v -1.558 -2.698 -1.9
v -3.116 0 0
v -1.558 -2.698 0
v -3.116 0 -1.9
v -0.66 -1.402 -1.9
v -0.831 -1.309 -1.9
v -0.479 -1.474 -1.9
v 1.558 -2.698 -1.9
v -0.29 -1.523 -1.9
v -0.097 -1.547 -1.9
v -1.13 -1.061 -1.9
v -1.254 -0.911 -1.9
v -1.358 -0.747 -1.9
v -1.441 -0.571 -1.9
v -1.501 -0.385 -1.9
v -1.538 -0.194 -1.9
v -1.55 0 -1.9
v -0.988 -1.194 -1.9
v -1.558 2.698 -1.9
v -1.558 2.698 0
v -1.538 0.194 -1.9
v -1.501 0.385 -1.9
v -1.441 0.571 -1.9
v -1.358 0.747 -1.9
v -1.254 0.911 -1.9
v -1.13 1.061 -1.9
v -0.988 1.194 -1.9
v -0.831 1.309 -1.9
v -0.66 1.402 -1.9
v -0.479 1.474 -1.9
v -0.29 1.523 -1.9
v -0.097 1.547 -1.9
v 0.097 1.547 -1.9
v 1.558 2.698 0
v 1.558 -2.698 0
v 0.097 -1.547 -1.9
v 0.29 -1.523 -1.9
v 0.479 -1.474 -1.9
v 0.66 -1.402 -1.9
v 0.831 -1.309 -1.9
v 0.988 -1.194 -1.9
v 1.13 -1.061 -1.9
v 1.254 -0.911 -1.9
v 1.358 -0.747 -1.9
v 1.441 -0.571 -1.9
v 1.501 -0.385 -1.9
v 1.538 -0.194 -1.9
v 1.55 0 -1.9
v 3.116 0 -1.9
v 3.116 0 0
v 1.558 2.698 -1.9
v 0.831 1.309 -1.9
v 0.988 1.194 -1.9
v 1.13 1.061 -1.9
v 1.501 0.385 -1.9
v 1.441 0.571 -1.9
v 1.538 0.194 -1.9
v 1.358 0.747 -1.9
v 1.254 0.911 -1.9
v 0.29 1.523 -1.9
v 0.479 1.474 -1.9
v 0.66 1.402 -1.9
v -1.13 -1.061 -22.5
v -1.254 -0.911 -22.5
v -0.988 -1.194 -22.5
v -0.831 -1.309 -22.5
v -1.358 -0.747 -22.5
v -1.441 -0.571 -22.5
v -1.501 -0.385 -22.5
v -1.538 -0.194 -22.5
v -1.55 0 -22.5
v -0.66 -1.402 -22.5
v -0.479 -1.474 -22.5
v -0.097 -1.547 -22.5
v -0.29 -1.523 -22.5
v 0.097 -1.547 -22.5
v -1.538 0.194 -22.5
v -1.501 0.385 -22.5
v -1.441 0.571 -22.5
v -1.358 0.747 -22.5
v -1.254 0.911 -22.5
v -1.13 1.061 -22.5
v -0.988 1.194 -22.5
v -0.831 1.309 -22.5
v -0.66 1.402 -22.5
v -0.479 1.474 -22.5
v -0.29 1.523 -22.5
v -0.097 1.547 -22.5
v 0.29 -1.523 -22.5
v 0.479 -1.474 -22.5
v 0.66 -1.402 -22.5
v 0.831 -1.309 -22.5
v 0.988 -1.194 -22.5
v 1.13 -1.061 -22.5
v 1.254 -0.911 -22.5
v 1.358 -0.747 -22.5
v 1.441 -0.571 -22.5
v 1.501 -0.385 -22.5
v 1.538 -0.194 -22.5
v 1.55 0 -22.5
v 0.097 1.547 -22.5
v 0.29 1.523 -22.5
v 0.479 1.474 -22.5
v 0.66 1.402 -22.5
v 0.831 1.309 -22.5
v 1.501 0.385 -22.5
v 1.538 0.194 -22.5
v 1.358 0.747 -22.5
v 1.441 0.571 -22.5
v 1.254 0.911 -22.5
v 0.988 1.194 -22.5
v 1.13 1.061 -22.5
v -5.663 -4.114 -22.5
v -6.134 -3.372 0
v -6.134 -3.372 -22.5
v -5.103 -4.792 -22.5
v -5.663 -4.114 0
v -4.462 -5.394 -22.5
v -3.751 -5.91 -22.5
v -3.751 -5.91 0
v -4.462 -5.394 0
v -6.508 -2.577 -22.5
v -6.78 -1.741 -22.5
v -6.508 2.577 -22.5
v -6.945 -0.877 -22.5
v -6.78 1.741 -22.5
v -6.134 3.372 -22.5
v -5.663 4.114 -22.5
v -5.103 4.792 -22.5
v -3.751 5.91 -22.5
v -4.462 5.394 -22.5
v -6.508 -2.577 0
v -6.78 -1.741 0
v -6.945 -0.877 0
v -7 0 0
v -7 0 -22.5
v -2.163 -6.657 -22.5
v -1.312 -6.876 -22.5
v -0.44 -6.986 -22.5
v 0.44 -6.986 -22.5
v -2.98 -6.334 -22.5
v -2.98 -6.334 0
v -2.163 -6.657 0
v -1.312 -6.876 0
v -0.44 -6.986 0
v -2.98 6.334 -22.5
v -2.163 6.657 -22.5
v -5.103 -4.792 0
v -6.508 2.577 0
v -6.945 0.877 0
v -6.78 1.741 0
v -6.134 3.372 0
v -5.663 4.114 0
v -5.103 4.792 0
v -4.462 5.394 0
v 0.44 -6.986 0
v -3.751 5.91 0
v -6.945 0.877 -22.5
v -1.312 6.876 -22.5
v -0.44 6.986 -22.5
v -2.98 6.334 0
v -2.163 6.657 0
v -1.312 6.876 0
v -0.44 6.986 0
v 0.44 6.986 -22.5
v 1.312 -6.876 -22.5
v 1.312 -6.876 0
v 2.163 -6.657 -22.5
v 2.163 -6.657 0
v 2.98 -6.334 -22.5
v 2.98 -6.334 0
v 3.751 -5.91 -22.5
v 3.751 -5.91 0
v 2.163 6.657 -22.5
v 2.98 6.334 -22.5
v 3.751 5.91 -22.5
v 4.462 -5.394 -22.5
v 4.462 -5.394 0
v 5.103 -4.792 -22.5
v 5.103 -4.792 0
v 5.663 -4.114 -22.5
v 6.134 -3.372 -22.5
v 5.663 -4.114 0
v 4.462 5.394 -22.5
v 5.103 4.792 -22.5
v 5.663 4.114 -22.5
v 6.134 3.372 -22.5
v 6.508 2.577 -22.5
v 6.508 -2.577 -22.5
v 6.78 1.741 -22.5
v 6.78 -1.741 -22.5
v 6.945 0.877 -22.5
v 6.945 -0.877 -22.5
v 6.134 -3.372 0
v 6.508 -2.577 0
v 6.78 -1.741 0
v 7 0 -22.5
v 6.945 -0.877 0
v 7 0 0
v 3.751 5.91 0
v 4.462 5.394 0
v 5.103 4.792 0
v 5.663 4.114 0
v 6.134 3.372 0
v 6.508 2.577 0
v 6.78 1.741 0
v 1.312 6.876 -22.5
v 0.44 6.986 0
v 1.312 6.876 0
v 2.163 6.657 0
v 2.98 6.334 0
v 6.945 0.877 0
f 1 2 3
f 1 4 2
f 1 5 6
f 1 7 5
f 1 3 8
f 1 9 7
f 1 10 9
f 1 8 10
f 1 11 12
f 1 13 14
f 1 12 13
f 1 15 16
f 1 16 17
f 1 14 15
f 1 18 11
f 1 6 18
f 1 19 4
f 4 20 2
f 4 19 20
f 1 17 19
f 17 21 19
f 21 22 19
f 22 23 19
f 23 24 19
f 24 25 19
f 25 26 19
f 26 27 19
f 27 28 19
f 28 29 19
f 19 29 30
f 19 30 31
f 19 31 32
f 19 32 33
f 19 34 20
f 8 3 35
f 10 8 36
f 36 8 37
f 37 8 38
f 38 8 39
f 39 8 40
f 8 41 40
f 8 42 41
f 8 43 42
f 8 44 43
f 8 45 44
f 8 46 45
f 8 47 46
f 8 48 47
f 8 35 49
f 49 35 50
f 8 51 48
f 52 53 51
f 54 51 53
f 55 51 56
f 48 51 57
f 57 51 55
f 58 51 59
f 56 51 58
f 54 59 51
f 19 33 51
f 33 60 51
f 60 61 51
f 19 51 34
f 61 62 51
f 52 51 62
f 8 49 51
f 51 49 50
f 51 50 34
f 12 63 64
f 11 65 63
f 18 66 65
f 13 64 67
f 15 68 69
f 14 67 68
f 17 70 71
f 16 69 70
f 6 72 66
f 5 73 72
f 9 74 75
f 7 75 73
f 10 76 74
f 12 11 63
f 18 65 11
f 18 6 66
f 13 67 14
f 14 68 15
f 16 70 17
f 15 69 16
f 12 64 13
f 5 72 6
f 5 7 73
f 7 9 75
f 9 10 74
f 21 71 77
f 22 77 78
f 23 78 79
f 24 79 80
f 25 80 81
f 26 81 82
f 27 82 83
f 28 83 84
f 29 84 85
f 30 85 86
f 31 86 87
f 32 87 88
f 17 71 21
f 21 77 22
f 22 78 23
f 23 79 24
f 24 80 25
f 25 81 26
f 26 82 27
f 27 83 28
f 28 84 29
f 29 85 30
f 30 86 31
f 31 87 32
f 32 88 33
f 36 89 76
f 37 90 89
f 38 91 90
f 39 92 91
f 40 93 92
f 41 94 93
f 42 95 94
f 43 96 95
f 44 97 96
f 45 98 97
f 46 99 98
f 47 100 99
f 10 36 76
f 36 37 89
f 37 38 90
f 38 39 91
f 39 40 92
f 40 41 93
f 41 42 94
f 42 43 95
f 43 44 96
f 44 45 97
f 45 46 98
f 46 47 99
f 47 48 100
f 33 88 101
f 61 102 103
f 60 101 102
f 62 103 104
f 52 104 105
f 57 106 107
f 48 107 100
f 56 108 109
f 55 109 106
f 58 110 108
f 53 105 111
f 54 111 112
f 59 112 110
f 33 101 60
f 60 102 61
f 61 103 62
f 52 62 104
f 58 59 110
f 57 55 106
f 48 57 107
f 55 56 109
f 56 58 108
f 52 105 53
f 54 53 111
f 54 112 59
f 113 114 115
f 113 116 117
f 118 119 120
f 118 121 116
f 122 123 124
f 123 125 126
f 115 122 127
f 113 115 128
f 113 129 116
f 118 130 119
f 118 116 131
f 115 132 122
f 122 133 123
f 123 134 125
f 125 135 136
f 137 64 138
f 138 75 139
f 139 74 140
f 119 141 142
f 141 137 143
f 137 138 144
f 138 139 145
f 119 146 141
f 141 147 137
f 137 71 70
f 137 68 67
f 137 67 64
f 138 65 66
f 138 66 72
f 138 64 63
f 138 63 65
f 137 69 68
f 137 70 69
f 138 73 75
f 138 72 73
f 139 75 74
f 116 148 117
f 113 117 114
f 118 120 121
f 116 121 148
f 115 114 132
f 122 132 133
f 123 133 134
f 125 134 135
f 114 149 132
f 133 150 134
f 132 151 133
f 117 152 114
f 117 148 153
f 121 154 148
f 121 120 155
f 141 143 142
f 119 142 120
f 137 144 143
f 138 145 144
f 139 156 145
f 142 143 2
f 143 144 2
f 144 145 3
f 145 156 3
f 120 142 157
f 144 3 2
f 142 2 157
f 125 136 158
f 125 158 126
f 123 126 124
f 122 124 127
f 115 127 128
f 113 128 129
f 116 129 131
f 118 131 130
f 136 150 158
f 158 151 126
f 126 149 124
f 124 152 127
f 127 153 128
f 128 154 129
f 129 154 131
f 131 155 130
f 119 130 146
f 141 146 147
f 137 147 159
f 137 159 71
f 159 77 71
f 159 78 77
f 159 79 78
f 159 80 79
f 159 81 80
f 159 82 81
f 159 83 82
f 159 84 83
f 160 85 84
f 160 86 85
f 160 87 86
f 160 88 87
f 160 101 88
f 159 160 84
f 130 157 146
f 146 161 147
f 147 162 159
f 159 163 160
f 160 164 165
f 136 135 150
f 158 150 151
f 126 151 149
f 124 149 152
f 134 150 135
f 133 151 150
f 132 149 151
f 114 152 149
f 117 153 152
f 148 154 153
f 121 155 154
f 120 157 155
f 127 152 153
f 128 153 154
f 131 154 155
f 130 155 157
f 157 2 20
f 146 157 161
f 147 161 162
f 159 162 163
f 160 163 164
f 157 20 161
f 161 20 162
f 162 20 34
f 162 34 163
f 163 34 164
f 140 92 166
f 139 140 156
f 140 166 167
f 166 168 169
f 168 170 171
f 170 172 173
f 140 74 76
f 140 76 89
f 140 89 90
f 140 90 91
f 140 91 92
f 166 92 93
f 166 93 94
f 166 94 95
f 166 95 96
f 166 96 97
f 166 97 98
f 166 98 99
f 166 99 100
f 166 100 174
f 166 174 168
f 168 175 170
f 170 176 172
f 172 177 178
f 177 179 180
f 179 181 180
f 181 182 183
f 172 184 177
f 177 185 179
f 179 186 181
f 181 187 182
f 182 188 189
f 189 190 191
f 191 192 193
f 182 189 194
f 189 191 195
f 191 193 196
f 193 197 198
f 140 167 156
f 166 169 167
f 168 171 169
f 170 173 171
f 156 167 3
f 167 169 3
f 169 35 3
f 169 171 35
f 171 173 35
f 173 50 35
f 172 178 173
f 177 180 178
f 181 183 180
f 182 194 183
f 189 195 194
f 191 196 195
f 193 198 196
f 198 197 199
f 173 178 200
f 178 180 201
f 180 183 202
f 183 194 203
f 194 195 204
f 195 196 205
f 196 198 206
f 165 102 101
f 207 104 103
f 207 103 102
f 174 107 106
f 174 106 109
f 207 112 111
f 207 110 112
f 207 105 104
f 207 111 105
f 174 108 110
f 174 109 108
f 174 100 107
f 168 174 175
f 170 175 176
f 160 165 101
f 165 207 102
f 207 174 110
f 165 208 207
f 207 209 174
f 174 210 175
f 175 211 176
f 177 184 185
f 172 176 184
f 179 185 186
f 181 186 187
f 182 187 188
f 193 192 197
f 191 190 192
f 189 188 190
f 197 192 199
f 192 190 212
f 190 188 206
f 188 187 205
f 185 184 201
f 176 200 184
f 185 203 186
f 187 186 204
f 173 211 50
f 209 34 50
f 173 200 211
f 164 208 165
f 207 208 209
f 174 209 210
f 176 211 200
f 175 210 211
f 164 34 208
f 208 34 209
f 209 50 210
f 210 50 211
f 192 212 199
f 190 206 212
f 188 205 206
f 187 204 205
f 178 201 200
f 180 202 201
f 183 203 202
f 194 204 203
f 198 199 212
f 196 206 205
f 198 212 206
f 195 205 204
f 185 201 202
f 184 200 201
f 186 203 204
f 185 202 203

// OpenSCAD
$fn = 50;


difference() {
	union() {
		translate(v = [0, 0, -22.5000000000]) {
			cylinder(h = 22.5000000000, r = 7.0000000000);
		}
	}
	union() {
		translate(v = [0, 0, 0]) {
			rotate(a = [0, 0, 0]) {
				difference() {
					union() {
						translate(v = [0, 0, -1.9000000000]) {
							linear_extrude(height = 1.9000000000) {
								polygon(points = [[3.1158000000, 0.0000000000], [1.5579000000, 2.6983619531], [-1.5579000000, 2.6983619531], [-3.1158000000, 0.0000000000], [-1.5579000000, -2.6983619531], [1.5579000000, -2.6983619531]]);
							}
						}
					}
					union();
				}
			}
		}
		#translate(v = [0, 0, -100.0000000000]) {
			cylinder(h = 200, r = 1.5500000000);
		}
	}
}
